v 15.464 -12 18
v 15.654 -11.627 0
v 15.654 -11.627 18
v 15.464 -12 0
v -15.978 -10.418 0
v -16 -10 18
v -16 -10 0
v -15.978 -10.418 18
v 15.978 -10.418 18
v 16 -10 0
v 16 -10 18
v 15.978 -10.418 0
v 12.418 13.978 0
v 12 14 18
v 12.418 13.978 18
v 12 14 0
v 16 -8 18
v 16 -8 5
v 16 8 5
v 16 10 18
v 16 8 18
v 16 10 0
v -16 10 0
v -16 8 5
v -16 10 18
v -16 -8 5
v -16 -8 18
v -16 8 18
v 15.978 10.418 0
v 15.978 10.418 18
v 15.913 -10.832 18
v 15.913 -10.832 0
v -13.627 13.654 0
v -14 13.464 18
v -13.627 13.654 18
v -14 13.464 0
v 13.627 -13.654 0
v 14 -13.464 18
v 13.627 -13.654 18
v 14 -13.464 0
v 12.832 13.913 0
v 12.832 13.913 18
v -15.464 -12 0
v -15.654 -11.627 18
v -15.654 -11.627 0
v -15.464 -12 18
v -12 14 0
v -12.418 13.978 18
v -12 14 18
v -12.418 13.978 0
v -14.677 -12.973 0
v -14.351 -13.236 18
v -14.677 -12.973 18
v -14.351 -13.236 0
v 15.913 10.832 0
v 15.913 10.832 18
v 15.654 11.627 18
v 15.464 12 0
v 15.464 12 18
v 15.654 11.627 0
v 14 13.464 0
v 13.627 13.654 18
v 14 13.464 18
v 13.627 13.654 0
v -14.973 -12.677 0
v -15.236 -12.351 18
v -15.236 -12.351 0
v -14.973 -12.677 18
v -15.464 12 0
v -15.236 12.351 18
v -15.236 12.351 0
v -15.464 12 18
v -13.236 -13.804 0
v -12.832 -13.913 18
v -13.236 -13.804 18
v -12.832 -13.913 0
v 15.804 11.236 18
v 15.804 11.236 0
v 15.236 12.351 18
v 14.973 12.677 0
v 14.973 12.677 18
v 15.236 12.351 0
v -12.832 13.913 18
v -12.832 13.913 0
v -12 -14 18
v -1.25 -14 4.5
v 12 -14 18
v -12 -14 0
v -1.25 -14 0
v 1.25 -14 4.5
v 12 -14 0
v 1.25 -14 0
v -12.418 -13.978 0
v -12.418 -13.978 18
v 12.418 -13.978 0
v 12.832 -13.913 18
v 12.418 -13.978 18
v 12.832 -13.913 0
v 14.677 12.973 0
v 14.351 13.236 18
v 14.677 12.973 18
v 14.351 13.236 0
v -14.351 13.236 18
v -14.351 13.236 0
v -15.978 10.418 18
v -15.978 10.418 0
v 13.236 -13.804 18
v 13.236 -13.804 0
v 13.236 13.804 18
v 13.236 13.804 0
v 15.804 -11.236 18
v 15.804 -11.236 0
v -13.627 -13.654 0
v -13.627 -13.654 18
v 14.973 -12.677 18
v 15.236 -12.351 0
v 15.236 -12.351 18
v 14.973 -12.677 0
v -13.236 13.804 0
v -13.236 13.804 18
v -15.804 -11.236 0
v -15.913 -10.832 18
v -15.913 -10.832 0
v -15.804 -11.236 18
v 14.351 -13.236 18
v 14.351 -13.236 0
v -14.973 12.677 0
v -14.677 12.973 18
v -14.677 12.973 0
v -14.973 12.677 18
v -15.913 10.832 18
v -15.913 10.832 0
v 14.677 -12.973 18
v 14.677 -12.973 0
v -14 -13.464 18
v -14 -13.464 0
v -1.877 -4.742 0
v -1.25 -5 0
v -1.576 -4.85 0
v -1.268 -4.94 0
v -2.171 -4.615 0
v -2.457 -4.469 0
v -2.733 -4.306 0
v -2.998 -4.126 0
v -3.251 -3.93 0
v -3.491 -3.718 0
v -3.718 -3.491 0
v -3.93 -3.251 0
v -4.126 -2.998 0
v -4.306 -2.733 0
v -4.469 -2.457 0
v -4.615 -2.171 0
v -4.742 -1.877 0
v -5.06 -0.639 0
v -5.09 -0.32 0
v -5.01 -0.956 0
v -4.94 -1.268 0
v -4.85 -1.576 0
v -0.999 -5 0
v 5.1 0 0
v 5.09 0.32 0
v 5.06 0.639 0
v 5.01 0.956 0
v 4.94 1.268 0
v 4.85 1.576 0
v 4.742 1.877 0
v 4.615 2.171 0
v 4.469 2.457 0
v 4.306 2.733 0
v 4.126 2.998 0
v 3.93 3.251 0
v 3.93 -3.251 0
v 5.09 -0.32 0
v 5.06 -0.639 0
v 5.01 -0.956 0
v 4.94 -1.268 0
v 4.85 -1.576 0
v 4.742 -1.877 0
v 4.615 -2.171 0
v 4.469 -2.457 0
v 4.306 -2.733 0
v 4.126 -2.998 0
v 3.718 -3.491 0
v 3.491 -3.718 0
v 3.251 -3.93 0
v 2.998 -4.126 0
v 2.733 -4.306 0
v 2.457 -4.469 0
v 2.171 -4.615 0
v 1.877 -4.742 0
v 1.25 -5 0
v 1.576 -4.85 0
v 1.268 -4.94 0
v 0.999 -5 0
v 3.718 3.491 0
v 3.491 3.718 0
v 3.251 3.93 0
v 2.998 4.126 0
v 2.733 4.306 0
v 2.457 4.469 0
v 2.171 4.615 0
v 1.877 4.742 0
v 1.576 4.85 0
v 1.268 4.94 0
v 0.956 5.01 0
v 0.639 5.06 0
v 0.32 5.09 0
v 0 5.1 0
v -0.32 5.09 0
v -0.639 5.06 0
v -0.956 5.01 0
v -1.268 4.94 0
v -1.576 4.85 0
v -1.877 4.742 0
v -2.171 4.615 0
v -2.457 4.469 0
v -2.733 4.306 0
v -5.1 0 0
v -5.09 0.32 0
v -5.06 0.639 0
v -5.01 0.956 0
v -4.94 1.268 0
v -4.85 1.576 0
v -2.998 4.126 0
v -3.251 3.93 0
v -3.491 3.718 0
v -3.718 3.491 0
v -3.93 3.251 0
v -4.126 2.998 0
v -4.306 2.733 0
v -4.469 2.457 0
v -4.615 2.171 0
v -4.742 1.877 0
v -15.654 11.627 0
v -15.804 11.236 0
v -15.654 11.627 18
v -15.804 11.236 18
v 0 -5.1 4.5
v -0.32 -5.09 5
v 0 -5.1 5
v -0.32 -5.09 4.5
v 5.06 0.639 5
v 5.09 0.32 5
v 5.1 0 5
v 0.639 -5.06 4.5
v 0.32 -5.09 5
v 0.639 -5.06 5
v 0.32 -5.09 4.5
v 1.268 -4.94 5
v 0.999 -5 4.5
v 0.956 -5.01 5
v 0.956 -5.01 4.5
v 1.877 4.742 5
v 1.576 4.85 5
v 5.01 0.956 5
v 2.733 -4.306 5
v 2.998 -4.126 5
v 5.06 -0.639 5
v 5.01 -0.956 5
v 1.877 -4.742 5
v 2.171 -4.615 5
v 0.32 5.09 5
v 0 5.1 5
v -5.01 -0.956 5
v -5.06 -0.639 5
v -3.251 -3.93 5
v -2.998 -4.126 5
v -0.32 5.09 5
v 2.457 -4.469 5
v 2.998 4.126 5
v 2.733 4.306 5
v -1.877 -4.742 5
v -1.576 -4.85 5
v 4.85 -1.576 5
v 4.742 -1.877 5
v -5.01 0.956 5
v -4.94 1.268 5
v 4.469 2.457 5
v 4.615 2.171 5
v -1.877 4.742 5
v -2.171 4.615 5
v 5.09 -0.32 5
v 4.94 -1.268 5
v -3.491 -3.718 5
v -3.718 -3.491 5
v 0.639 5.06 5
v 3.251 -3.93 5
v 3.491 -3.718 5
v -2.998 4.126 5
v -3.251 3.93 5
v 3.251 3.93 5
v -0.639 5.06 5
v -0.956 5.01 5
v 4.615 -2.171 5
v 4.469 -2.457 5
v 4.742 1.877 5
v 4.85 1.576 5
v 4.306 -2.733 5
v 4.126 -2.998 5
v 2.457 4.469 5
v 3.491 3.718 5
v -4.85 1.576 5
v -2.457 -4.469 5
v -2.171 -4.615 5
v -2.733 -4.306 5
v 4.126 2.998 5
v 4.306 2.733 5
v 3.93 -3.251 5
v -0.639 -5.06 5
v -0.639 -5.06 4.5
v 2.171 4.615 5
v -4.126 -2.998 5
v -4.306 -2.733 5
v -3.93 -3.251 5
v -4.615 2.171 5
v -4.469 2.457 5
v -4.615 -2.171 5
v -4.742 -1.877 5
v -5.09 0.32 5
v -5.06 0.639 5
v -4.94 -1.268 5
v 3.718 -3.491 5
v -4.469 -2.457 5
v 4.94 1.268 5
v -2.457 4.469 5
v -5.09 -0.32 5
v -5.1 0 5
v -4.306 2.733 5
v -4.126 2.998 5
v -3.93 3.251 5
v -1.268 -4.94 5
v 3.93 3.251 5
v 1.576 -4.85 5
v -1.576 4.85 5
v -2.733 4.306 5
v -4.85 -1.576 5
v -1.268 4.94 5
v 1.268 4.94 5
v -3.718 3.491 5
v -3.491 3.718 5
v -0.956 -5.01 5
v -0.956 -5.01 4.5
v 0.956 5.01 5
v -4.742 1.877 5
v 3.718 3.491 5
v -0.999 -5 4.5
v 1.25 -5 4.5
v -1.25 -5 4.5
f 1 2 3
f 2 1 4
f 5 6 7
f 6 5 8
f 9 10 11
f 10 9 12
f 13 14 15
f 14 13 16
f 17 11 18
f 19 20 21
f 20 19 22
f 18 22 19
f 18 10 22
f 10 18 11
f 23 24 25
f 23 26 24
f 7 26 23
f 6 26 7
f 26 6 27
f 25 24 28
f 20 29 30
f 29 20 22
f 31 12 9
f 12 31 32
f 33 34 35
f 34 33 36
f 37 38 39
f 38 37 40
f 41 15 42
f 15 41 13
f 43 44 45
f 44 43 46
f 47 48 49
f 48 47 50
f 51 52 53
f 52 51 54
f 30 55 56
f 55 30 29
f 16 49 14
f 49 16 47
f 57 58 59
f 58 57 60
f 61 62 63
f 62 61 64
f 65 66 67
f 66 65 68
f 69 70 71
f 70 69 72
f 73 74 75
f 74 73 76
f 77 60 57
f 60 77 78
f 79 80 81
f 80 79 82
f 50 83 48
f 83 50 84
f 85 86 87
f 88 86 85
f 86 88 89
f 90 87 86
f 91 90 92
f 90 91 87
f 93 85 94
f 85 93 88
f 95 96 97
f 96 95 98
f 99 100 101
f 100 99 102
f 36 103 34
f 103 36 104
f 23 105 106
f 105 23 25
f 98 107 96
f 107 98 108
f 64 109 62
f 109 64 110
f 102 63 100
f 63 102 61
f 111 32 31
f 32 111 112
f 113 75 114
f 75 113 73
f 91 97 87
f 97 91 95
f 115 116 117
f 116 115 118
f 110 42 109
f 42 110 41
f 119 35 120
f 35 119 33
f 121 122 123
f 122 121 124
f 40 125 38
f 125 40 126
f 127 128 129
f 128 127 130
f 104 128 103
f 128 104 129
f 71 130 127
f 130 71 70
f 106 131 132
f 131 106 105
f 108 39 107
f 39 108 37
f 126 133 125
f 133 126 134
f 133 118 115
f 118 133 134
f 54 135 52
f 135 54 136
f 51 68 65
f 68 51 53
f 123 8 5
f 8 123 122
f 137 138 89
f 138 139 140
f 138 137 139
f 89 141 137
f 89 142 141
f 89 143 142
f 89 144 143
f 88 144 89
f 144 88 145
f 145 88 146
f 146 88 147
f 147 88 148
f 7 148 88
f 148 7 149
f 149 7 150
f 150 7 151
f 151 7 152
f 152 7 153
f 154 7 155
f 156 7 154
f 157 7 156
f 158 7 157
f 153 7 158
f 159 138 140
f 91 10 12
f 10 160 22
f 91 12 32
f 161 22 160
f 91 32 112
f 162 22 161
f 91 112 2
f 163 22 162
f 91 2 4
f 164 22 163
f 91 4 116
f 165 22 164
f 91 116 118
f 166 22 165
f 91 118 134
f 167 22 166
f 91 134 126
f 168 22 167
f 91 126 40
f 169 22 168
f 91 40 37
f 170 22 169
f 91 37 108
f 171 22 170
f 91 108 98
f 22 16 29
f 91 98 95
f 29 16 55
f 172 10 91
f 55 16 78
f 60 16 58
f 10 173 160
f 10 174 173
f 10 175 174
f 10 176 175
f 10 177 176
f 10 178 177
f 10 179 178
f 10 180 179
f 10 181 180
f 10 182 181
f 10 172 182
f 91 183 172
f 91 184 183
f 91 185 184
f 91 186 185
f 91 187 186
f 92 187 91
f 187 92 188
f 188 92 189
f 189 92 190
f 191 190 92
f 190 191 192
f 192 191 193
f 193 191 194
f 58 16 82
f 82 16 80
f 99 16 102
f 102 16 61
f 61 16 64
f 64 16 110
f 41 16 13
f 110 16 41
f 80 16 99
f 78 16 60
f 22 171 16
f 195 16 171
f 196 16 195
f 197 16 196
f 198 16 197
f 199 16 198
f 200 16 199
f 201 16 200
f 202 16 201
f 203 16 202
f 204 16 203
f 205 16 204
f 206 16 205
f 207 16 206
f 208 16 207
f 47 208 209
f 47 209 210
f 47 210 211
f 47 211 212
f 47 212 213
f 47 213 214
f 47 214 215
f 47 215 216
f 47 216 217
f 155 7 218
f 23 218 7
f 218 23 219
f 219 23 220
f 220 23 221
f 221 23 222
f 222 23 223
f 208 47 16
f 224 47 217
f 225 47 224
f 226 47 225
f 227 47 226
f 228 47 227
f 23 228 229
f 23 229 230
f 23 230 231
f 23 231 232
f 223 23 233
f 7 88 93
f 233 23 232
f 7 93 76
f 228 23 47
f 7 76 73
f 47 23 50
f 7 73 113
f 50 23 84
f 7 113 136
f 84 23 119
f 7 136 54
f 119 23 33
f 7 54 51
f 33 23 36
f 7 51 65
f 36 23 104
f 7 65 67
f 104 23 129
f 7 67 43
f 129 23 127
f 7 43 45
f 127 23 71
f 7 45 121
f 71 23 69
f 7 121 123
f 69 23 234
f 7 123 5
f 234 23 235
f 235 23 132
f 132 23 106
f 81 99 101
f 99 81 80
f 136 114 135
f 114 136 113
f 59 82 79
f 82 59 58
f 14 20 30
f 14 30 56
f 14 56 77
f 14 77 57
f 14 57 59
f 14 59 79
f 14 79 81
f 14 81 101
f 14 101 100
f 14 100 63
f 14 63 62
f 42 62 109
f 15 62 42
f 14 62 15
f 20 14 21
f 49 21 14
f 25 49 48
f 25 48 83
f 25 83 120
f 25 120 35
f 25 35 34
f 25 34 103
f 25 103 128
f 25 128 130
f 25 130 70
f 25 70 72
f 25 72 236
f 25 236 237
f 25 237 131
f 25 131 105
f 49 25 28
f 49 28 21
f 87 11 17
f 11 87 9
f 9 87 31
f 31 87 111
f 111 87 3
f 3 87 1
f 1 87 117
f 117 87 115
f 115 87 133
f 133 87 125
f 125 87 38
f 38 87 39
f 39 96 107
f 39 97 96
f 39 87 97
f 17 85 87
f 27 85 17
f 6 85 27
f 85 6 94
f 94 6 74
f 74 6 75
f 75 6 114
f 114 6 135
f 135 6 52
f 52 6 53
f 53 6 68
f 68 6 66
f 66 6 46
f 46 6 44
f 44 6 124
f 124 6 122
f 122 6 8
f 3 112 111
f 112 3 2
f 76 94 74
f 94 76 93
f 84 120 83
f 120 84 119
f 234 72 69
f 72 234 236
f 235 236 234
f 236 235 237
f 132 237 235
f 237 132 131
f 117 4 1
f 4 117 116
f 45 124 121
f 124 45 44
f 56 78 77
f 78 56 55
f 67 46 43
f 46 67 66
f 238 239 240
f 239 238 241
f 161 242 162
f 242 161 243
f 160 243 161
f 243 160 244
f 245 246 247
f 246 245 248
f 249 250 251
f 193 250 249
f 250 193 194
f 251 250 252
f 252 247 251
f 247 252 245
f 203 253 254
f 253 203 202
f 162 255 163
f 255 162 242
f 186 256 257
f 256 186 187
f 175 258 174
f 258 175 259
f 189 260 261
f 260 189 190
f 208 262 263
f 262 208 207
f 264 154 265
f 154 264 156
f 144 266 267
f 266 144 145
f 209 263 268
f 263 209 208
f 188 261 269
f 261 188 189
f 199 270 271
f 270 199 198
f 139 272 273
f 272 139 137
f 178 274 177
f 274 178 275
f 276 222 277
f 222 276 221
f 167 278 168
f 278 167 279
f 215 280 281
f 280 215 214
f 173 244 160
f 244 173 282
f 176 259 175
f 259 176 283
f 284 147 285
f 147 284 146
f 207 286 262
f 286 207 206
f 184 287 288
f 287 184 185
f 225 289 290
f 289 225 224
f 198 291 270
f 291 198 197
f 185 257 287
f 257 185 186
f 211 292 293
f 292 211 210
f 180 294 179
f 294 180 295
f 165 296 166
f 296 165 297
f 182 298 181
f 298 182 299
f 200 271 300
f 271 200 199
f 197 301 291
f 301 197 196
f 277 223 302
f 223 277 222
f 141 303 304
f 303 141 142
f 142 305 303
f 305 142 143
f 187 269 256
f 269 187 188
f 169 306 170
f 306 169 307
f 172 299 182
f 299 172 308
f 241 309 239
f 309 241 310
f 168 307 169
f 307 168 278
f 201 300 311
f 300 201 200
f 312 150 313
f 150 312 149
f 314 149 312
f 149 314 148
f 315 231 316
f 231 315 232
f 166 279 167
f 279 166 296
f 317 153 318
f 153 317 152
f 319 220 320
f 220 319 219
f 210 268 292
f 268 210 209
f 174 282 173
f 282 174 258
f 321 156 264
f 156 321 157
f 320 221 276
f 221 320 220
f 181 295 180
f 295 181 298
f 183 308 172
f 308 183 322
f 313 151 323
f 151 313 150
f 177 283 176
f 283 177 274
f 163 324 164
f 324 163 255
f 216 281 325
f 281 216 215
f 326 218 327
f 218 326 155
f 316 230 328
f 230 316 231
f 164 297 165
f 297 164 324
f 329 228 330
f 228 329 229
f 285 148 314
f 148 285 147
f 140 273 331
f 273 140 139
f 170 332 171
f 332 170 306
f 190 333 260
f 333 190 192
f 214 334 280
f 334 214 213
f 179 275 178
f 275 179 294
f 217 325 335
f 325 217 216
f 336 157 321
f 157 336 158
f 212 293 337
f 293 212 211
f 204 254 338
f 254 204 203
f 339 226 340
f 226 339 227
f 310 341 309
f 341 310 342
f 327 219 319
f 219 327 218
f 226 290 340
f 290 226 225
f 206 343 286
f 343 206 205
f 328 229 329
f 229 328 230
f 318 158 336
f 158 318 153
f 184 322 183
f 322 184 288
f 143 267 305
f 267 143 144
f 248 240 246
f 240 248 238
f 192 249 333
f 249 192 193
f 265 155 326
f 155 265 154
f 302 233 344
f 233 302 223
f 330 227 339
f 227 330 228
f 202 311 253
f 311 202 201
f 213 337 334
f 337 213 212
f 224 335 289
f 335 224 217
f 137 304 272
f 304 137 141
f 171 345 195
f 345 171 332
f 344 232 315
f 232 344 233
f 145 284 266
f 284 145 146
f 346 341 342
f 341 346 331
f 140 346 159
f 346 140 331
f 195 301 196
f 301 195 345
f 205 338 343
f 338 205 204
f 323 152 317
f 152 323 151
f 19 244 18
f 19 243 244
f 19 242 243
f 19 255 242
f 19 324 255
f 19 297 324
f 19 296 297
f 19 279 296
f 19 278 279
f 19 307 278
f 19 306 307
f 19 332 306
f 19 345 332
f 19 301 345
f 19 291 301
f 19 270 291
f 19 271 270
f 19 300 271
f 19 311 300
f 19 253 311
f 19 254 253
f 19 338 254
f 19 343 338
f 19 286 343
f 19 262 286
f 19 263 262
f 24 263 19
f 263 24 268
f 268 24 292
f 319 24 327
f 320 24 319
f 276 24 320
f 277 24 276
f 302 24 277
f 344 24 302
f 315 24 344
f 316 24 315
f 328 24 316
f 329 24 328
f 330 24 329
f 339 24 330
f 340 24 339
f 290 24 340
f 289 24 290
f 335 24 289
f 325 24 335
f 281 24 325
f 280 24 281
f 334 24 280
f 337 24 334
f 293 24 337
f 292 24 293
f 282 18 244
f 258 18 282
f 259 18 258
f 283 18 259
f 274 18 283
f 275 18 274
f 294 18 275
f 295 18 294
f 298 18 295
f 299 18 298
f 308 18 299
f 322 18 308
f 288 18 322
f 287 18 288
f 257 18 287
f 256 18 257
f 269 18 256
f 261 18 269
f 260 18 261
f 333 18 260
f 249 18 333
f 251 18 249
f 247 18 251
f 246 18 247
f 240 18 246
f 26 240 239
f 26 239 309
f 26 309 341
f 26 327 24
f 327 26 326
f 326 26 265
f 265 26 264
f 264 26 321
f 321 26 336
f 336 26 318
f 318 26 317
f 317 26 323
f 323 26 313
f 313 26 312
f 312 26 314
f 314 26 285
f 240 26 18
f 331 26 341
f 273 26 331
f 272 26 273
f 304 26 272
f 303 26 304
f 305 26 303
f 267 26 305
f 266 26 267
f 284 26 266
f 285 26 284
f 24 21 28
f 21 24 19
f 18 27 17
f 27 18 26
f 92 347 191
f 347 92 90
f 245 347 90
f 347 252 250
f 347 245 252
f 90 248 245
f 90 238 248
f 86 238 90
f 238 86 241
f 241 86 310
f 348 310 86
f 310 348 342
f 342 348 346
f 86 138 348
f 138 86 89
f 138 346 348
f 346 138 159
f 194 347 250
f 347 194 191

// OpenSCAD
// V52.2-Right Master-Cut
// Optimized for Vybronics VG1030001XH 
// Resonant Freq: 210Hz | Mass Stabilized

module v52_2_right() {
    difference() {
        // 1. THE ERGONOMIC CHASSIS
        hull() {
            translate([-12, -10, 0]) cylinder(r=4, h=18, $fn=60);
            translate([12, -10, 0])  cylinder(r=4, h=18, $fn=60);
            translate([-12, 10, 0])  cylinder(r=4, h=18, $fn=60);
            translate([12, 10, 0])   cylinder(r=4, h=18, $fn=60);
        }

        // 2. THE MOTOR OPENING (Skin-Side)
        // Cut starts at -5 and goes to 8 to ensure it's hollow.
        translate([0, 0, -5]) 
            cylinder(d=10.2, h=13, $fn=100);

        // 3. THE BATTERY POD SLOT (Clip)
        // Widened to 16mm for easier "snap" fit with PETG
        translate([-18, -8, 5]) 
            cube([36, 16, 15]); 

        // 4. WIRE TRENCH (AWG 30 Exit)
        translate([0, -15, 2]) 
            cube([2.5, 20, 5], center=true);

        // 5. THE "R" MARKING (Deep Tactile Emboss)
        translate([0, 0, 16]) 
            linear_extrude(height = 5) 
                text("R", size=10, font="Arial:style=Bold", halign="center", valign="center");
    }
}

// EXECUTE
v52_2_right();
